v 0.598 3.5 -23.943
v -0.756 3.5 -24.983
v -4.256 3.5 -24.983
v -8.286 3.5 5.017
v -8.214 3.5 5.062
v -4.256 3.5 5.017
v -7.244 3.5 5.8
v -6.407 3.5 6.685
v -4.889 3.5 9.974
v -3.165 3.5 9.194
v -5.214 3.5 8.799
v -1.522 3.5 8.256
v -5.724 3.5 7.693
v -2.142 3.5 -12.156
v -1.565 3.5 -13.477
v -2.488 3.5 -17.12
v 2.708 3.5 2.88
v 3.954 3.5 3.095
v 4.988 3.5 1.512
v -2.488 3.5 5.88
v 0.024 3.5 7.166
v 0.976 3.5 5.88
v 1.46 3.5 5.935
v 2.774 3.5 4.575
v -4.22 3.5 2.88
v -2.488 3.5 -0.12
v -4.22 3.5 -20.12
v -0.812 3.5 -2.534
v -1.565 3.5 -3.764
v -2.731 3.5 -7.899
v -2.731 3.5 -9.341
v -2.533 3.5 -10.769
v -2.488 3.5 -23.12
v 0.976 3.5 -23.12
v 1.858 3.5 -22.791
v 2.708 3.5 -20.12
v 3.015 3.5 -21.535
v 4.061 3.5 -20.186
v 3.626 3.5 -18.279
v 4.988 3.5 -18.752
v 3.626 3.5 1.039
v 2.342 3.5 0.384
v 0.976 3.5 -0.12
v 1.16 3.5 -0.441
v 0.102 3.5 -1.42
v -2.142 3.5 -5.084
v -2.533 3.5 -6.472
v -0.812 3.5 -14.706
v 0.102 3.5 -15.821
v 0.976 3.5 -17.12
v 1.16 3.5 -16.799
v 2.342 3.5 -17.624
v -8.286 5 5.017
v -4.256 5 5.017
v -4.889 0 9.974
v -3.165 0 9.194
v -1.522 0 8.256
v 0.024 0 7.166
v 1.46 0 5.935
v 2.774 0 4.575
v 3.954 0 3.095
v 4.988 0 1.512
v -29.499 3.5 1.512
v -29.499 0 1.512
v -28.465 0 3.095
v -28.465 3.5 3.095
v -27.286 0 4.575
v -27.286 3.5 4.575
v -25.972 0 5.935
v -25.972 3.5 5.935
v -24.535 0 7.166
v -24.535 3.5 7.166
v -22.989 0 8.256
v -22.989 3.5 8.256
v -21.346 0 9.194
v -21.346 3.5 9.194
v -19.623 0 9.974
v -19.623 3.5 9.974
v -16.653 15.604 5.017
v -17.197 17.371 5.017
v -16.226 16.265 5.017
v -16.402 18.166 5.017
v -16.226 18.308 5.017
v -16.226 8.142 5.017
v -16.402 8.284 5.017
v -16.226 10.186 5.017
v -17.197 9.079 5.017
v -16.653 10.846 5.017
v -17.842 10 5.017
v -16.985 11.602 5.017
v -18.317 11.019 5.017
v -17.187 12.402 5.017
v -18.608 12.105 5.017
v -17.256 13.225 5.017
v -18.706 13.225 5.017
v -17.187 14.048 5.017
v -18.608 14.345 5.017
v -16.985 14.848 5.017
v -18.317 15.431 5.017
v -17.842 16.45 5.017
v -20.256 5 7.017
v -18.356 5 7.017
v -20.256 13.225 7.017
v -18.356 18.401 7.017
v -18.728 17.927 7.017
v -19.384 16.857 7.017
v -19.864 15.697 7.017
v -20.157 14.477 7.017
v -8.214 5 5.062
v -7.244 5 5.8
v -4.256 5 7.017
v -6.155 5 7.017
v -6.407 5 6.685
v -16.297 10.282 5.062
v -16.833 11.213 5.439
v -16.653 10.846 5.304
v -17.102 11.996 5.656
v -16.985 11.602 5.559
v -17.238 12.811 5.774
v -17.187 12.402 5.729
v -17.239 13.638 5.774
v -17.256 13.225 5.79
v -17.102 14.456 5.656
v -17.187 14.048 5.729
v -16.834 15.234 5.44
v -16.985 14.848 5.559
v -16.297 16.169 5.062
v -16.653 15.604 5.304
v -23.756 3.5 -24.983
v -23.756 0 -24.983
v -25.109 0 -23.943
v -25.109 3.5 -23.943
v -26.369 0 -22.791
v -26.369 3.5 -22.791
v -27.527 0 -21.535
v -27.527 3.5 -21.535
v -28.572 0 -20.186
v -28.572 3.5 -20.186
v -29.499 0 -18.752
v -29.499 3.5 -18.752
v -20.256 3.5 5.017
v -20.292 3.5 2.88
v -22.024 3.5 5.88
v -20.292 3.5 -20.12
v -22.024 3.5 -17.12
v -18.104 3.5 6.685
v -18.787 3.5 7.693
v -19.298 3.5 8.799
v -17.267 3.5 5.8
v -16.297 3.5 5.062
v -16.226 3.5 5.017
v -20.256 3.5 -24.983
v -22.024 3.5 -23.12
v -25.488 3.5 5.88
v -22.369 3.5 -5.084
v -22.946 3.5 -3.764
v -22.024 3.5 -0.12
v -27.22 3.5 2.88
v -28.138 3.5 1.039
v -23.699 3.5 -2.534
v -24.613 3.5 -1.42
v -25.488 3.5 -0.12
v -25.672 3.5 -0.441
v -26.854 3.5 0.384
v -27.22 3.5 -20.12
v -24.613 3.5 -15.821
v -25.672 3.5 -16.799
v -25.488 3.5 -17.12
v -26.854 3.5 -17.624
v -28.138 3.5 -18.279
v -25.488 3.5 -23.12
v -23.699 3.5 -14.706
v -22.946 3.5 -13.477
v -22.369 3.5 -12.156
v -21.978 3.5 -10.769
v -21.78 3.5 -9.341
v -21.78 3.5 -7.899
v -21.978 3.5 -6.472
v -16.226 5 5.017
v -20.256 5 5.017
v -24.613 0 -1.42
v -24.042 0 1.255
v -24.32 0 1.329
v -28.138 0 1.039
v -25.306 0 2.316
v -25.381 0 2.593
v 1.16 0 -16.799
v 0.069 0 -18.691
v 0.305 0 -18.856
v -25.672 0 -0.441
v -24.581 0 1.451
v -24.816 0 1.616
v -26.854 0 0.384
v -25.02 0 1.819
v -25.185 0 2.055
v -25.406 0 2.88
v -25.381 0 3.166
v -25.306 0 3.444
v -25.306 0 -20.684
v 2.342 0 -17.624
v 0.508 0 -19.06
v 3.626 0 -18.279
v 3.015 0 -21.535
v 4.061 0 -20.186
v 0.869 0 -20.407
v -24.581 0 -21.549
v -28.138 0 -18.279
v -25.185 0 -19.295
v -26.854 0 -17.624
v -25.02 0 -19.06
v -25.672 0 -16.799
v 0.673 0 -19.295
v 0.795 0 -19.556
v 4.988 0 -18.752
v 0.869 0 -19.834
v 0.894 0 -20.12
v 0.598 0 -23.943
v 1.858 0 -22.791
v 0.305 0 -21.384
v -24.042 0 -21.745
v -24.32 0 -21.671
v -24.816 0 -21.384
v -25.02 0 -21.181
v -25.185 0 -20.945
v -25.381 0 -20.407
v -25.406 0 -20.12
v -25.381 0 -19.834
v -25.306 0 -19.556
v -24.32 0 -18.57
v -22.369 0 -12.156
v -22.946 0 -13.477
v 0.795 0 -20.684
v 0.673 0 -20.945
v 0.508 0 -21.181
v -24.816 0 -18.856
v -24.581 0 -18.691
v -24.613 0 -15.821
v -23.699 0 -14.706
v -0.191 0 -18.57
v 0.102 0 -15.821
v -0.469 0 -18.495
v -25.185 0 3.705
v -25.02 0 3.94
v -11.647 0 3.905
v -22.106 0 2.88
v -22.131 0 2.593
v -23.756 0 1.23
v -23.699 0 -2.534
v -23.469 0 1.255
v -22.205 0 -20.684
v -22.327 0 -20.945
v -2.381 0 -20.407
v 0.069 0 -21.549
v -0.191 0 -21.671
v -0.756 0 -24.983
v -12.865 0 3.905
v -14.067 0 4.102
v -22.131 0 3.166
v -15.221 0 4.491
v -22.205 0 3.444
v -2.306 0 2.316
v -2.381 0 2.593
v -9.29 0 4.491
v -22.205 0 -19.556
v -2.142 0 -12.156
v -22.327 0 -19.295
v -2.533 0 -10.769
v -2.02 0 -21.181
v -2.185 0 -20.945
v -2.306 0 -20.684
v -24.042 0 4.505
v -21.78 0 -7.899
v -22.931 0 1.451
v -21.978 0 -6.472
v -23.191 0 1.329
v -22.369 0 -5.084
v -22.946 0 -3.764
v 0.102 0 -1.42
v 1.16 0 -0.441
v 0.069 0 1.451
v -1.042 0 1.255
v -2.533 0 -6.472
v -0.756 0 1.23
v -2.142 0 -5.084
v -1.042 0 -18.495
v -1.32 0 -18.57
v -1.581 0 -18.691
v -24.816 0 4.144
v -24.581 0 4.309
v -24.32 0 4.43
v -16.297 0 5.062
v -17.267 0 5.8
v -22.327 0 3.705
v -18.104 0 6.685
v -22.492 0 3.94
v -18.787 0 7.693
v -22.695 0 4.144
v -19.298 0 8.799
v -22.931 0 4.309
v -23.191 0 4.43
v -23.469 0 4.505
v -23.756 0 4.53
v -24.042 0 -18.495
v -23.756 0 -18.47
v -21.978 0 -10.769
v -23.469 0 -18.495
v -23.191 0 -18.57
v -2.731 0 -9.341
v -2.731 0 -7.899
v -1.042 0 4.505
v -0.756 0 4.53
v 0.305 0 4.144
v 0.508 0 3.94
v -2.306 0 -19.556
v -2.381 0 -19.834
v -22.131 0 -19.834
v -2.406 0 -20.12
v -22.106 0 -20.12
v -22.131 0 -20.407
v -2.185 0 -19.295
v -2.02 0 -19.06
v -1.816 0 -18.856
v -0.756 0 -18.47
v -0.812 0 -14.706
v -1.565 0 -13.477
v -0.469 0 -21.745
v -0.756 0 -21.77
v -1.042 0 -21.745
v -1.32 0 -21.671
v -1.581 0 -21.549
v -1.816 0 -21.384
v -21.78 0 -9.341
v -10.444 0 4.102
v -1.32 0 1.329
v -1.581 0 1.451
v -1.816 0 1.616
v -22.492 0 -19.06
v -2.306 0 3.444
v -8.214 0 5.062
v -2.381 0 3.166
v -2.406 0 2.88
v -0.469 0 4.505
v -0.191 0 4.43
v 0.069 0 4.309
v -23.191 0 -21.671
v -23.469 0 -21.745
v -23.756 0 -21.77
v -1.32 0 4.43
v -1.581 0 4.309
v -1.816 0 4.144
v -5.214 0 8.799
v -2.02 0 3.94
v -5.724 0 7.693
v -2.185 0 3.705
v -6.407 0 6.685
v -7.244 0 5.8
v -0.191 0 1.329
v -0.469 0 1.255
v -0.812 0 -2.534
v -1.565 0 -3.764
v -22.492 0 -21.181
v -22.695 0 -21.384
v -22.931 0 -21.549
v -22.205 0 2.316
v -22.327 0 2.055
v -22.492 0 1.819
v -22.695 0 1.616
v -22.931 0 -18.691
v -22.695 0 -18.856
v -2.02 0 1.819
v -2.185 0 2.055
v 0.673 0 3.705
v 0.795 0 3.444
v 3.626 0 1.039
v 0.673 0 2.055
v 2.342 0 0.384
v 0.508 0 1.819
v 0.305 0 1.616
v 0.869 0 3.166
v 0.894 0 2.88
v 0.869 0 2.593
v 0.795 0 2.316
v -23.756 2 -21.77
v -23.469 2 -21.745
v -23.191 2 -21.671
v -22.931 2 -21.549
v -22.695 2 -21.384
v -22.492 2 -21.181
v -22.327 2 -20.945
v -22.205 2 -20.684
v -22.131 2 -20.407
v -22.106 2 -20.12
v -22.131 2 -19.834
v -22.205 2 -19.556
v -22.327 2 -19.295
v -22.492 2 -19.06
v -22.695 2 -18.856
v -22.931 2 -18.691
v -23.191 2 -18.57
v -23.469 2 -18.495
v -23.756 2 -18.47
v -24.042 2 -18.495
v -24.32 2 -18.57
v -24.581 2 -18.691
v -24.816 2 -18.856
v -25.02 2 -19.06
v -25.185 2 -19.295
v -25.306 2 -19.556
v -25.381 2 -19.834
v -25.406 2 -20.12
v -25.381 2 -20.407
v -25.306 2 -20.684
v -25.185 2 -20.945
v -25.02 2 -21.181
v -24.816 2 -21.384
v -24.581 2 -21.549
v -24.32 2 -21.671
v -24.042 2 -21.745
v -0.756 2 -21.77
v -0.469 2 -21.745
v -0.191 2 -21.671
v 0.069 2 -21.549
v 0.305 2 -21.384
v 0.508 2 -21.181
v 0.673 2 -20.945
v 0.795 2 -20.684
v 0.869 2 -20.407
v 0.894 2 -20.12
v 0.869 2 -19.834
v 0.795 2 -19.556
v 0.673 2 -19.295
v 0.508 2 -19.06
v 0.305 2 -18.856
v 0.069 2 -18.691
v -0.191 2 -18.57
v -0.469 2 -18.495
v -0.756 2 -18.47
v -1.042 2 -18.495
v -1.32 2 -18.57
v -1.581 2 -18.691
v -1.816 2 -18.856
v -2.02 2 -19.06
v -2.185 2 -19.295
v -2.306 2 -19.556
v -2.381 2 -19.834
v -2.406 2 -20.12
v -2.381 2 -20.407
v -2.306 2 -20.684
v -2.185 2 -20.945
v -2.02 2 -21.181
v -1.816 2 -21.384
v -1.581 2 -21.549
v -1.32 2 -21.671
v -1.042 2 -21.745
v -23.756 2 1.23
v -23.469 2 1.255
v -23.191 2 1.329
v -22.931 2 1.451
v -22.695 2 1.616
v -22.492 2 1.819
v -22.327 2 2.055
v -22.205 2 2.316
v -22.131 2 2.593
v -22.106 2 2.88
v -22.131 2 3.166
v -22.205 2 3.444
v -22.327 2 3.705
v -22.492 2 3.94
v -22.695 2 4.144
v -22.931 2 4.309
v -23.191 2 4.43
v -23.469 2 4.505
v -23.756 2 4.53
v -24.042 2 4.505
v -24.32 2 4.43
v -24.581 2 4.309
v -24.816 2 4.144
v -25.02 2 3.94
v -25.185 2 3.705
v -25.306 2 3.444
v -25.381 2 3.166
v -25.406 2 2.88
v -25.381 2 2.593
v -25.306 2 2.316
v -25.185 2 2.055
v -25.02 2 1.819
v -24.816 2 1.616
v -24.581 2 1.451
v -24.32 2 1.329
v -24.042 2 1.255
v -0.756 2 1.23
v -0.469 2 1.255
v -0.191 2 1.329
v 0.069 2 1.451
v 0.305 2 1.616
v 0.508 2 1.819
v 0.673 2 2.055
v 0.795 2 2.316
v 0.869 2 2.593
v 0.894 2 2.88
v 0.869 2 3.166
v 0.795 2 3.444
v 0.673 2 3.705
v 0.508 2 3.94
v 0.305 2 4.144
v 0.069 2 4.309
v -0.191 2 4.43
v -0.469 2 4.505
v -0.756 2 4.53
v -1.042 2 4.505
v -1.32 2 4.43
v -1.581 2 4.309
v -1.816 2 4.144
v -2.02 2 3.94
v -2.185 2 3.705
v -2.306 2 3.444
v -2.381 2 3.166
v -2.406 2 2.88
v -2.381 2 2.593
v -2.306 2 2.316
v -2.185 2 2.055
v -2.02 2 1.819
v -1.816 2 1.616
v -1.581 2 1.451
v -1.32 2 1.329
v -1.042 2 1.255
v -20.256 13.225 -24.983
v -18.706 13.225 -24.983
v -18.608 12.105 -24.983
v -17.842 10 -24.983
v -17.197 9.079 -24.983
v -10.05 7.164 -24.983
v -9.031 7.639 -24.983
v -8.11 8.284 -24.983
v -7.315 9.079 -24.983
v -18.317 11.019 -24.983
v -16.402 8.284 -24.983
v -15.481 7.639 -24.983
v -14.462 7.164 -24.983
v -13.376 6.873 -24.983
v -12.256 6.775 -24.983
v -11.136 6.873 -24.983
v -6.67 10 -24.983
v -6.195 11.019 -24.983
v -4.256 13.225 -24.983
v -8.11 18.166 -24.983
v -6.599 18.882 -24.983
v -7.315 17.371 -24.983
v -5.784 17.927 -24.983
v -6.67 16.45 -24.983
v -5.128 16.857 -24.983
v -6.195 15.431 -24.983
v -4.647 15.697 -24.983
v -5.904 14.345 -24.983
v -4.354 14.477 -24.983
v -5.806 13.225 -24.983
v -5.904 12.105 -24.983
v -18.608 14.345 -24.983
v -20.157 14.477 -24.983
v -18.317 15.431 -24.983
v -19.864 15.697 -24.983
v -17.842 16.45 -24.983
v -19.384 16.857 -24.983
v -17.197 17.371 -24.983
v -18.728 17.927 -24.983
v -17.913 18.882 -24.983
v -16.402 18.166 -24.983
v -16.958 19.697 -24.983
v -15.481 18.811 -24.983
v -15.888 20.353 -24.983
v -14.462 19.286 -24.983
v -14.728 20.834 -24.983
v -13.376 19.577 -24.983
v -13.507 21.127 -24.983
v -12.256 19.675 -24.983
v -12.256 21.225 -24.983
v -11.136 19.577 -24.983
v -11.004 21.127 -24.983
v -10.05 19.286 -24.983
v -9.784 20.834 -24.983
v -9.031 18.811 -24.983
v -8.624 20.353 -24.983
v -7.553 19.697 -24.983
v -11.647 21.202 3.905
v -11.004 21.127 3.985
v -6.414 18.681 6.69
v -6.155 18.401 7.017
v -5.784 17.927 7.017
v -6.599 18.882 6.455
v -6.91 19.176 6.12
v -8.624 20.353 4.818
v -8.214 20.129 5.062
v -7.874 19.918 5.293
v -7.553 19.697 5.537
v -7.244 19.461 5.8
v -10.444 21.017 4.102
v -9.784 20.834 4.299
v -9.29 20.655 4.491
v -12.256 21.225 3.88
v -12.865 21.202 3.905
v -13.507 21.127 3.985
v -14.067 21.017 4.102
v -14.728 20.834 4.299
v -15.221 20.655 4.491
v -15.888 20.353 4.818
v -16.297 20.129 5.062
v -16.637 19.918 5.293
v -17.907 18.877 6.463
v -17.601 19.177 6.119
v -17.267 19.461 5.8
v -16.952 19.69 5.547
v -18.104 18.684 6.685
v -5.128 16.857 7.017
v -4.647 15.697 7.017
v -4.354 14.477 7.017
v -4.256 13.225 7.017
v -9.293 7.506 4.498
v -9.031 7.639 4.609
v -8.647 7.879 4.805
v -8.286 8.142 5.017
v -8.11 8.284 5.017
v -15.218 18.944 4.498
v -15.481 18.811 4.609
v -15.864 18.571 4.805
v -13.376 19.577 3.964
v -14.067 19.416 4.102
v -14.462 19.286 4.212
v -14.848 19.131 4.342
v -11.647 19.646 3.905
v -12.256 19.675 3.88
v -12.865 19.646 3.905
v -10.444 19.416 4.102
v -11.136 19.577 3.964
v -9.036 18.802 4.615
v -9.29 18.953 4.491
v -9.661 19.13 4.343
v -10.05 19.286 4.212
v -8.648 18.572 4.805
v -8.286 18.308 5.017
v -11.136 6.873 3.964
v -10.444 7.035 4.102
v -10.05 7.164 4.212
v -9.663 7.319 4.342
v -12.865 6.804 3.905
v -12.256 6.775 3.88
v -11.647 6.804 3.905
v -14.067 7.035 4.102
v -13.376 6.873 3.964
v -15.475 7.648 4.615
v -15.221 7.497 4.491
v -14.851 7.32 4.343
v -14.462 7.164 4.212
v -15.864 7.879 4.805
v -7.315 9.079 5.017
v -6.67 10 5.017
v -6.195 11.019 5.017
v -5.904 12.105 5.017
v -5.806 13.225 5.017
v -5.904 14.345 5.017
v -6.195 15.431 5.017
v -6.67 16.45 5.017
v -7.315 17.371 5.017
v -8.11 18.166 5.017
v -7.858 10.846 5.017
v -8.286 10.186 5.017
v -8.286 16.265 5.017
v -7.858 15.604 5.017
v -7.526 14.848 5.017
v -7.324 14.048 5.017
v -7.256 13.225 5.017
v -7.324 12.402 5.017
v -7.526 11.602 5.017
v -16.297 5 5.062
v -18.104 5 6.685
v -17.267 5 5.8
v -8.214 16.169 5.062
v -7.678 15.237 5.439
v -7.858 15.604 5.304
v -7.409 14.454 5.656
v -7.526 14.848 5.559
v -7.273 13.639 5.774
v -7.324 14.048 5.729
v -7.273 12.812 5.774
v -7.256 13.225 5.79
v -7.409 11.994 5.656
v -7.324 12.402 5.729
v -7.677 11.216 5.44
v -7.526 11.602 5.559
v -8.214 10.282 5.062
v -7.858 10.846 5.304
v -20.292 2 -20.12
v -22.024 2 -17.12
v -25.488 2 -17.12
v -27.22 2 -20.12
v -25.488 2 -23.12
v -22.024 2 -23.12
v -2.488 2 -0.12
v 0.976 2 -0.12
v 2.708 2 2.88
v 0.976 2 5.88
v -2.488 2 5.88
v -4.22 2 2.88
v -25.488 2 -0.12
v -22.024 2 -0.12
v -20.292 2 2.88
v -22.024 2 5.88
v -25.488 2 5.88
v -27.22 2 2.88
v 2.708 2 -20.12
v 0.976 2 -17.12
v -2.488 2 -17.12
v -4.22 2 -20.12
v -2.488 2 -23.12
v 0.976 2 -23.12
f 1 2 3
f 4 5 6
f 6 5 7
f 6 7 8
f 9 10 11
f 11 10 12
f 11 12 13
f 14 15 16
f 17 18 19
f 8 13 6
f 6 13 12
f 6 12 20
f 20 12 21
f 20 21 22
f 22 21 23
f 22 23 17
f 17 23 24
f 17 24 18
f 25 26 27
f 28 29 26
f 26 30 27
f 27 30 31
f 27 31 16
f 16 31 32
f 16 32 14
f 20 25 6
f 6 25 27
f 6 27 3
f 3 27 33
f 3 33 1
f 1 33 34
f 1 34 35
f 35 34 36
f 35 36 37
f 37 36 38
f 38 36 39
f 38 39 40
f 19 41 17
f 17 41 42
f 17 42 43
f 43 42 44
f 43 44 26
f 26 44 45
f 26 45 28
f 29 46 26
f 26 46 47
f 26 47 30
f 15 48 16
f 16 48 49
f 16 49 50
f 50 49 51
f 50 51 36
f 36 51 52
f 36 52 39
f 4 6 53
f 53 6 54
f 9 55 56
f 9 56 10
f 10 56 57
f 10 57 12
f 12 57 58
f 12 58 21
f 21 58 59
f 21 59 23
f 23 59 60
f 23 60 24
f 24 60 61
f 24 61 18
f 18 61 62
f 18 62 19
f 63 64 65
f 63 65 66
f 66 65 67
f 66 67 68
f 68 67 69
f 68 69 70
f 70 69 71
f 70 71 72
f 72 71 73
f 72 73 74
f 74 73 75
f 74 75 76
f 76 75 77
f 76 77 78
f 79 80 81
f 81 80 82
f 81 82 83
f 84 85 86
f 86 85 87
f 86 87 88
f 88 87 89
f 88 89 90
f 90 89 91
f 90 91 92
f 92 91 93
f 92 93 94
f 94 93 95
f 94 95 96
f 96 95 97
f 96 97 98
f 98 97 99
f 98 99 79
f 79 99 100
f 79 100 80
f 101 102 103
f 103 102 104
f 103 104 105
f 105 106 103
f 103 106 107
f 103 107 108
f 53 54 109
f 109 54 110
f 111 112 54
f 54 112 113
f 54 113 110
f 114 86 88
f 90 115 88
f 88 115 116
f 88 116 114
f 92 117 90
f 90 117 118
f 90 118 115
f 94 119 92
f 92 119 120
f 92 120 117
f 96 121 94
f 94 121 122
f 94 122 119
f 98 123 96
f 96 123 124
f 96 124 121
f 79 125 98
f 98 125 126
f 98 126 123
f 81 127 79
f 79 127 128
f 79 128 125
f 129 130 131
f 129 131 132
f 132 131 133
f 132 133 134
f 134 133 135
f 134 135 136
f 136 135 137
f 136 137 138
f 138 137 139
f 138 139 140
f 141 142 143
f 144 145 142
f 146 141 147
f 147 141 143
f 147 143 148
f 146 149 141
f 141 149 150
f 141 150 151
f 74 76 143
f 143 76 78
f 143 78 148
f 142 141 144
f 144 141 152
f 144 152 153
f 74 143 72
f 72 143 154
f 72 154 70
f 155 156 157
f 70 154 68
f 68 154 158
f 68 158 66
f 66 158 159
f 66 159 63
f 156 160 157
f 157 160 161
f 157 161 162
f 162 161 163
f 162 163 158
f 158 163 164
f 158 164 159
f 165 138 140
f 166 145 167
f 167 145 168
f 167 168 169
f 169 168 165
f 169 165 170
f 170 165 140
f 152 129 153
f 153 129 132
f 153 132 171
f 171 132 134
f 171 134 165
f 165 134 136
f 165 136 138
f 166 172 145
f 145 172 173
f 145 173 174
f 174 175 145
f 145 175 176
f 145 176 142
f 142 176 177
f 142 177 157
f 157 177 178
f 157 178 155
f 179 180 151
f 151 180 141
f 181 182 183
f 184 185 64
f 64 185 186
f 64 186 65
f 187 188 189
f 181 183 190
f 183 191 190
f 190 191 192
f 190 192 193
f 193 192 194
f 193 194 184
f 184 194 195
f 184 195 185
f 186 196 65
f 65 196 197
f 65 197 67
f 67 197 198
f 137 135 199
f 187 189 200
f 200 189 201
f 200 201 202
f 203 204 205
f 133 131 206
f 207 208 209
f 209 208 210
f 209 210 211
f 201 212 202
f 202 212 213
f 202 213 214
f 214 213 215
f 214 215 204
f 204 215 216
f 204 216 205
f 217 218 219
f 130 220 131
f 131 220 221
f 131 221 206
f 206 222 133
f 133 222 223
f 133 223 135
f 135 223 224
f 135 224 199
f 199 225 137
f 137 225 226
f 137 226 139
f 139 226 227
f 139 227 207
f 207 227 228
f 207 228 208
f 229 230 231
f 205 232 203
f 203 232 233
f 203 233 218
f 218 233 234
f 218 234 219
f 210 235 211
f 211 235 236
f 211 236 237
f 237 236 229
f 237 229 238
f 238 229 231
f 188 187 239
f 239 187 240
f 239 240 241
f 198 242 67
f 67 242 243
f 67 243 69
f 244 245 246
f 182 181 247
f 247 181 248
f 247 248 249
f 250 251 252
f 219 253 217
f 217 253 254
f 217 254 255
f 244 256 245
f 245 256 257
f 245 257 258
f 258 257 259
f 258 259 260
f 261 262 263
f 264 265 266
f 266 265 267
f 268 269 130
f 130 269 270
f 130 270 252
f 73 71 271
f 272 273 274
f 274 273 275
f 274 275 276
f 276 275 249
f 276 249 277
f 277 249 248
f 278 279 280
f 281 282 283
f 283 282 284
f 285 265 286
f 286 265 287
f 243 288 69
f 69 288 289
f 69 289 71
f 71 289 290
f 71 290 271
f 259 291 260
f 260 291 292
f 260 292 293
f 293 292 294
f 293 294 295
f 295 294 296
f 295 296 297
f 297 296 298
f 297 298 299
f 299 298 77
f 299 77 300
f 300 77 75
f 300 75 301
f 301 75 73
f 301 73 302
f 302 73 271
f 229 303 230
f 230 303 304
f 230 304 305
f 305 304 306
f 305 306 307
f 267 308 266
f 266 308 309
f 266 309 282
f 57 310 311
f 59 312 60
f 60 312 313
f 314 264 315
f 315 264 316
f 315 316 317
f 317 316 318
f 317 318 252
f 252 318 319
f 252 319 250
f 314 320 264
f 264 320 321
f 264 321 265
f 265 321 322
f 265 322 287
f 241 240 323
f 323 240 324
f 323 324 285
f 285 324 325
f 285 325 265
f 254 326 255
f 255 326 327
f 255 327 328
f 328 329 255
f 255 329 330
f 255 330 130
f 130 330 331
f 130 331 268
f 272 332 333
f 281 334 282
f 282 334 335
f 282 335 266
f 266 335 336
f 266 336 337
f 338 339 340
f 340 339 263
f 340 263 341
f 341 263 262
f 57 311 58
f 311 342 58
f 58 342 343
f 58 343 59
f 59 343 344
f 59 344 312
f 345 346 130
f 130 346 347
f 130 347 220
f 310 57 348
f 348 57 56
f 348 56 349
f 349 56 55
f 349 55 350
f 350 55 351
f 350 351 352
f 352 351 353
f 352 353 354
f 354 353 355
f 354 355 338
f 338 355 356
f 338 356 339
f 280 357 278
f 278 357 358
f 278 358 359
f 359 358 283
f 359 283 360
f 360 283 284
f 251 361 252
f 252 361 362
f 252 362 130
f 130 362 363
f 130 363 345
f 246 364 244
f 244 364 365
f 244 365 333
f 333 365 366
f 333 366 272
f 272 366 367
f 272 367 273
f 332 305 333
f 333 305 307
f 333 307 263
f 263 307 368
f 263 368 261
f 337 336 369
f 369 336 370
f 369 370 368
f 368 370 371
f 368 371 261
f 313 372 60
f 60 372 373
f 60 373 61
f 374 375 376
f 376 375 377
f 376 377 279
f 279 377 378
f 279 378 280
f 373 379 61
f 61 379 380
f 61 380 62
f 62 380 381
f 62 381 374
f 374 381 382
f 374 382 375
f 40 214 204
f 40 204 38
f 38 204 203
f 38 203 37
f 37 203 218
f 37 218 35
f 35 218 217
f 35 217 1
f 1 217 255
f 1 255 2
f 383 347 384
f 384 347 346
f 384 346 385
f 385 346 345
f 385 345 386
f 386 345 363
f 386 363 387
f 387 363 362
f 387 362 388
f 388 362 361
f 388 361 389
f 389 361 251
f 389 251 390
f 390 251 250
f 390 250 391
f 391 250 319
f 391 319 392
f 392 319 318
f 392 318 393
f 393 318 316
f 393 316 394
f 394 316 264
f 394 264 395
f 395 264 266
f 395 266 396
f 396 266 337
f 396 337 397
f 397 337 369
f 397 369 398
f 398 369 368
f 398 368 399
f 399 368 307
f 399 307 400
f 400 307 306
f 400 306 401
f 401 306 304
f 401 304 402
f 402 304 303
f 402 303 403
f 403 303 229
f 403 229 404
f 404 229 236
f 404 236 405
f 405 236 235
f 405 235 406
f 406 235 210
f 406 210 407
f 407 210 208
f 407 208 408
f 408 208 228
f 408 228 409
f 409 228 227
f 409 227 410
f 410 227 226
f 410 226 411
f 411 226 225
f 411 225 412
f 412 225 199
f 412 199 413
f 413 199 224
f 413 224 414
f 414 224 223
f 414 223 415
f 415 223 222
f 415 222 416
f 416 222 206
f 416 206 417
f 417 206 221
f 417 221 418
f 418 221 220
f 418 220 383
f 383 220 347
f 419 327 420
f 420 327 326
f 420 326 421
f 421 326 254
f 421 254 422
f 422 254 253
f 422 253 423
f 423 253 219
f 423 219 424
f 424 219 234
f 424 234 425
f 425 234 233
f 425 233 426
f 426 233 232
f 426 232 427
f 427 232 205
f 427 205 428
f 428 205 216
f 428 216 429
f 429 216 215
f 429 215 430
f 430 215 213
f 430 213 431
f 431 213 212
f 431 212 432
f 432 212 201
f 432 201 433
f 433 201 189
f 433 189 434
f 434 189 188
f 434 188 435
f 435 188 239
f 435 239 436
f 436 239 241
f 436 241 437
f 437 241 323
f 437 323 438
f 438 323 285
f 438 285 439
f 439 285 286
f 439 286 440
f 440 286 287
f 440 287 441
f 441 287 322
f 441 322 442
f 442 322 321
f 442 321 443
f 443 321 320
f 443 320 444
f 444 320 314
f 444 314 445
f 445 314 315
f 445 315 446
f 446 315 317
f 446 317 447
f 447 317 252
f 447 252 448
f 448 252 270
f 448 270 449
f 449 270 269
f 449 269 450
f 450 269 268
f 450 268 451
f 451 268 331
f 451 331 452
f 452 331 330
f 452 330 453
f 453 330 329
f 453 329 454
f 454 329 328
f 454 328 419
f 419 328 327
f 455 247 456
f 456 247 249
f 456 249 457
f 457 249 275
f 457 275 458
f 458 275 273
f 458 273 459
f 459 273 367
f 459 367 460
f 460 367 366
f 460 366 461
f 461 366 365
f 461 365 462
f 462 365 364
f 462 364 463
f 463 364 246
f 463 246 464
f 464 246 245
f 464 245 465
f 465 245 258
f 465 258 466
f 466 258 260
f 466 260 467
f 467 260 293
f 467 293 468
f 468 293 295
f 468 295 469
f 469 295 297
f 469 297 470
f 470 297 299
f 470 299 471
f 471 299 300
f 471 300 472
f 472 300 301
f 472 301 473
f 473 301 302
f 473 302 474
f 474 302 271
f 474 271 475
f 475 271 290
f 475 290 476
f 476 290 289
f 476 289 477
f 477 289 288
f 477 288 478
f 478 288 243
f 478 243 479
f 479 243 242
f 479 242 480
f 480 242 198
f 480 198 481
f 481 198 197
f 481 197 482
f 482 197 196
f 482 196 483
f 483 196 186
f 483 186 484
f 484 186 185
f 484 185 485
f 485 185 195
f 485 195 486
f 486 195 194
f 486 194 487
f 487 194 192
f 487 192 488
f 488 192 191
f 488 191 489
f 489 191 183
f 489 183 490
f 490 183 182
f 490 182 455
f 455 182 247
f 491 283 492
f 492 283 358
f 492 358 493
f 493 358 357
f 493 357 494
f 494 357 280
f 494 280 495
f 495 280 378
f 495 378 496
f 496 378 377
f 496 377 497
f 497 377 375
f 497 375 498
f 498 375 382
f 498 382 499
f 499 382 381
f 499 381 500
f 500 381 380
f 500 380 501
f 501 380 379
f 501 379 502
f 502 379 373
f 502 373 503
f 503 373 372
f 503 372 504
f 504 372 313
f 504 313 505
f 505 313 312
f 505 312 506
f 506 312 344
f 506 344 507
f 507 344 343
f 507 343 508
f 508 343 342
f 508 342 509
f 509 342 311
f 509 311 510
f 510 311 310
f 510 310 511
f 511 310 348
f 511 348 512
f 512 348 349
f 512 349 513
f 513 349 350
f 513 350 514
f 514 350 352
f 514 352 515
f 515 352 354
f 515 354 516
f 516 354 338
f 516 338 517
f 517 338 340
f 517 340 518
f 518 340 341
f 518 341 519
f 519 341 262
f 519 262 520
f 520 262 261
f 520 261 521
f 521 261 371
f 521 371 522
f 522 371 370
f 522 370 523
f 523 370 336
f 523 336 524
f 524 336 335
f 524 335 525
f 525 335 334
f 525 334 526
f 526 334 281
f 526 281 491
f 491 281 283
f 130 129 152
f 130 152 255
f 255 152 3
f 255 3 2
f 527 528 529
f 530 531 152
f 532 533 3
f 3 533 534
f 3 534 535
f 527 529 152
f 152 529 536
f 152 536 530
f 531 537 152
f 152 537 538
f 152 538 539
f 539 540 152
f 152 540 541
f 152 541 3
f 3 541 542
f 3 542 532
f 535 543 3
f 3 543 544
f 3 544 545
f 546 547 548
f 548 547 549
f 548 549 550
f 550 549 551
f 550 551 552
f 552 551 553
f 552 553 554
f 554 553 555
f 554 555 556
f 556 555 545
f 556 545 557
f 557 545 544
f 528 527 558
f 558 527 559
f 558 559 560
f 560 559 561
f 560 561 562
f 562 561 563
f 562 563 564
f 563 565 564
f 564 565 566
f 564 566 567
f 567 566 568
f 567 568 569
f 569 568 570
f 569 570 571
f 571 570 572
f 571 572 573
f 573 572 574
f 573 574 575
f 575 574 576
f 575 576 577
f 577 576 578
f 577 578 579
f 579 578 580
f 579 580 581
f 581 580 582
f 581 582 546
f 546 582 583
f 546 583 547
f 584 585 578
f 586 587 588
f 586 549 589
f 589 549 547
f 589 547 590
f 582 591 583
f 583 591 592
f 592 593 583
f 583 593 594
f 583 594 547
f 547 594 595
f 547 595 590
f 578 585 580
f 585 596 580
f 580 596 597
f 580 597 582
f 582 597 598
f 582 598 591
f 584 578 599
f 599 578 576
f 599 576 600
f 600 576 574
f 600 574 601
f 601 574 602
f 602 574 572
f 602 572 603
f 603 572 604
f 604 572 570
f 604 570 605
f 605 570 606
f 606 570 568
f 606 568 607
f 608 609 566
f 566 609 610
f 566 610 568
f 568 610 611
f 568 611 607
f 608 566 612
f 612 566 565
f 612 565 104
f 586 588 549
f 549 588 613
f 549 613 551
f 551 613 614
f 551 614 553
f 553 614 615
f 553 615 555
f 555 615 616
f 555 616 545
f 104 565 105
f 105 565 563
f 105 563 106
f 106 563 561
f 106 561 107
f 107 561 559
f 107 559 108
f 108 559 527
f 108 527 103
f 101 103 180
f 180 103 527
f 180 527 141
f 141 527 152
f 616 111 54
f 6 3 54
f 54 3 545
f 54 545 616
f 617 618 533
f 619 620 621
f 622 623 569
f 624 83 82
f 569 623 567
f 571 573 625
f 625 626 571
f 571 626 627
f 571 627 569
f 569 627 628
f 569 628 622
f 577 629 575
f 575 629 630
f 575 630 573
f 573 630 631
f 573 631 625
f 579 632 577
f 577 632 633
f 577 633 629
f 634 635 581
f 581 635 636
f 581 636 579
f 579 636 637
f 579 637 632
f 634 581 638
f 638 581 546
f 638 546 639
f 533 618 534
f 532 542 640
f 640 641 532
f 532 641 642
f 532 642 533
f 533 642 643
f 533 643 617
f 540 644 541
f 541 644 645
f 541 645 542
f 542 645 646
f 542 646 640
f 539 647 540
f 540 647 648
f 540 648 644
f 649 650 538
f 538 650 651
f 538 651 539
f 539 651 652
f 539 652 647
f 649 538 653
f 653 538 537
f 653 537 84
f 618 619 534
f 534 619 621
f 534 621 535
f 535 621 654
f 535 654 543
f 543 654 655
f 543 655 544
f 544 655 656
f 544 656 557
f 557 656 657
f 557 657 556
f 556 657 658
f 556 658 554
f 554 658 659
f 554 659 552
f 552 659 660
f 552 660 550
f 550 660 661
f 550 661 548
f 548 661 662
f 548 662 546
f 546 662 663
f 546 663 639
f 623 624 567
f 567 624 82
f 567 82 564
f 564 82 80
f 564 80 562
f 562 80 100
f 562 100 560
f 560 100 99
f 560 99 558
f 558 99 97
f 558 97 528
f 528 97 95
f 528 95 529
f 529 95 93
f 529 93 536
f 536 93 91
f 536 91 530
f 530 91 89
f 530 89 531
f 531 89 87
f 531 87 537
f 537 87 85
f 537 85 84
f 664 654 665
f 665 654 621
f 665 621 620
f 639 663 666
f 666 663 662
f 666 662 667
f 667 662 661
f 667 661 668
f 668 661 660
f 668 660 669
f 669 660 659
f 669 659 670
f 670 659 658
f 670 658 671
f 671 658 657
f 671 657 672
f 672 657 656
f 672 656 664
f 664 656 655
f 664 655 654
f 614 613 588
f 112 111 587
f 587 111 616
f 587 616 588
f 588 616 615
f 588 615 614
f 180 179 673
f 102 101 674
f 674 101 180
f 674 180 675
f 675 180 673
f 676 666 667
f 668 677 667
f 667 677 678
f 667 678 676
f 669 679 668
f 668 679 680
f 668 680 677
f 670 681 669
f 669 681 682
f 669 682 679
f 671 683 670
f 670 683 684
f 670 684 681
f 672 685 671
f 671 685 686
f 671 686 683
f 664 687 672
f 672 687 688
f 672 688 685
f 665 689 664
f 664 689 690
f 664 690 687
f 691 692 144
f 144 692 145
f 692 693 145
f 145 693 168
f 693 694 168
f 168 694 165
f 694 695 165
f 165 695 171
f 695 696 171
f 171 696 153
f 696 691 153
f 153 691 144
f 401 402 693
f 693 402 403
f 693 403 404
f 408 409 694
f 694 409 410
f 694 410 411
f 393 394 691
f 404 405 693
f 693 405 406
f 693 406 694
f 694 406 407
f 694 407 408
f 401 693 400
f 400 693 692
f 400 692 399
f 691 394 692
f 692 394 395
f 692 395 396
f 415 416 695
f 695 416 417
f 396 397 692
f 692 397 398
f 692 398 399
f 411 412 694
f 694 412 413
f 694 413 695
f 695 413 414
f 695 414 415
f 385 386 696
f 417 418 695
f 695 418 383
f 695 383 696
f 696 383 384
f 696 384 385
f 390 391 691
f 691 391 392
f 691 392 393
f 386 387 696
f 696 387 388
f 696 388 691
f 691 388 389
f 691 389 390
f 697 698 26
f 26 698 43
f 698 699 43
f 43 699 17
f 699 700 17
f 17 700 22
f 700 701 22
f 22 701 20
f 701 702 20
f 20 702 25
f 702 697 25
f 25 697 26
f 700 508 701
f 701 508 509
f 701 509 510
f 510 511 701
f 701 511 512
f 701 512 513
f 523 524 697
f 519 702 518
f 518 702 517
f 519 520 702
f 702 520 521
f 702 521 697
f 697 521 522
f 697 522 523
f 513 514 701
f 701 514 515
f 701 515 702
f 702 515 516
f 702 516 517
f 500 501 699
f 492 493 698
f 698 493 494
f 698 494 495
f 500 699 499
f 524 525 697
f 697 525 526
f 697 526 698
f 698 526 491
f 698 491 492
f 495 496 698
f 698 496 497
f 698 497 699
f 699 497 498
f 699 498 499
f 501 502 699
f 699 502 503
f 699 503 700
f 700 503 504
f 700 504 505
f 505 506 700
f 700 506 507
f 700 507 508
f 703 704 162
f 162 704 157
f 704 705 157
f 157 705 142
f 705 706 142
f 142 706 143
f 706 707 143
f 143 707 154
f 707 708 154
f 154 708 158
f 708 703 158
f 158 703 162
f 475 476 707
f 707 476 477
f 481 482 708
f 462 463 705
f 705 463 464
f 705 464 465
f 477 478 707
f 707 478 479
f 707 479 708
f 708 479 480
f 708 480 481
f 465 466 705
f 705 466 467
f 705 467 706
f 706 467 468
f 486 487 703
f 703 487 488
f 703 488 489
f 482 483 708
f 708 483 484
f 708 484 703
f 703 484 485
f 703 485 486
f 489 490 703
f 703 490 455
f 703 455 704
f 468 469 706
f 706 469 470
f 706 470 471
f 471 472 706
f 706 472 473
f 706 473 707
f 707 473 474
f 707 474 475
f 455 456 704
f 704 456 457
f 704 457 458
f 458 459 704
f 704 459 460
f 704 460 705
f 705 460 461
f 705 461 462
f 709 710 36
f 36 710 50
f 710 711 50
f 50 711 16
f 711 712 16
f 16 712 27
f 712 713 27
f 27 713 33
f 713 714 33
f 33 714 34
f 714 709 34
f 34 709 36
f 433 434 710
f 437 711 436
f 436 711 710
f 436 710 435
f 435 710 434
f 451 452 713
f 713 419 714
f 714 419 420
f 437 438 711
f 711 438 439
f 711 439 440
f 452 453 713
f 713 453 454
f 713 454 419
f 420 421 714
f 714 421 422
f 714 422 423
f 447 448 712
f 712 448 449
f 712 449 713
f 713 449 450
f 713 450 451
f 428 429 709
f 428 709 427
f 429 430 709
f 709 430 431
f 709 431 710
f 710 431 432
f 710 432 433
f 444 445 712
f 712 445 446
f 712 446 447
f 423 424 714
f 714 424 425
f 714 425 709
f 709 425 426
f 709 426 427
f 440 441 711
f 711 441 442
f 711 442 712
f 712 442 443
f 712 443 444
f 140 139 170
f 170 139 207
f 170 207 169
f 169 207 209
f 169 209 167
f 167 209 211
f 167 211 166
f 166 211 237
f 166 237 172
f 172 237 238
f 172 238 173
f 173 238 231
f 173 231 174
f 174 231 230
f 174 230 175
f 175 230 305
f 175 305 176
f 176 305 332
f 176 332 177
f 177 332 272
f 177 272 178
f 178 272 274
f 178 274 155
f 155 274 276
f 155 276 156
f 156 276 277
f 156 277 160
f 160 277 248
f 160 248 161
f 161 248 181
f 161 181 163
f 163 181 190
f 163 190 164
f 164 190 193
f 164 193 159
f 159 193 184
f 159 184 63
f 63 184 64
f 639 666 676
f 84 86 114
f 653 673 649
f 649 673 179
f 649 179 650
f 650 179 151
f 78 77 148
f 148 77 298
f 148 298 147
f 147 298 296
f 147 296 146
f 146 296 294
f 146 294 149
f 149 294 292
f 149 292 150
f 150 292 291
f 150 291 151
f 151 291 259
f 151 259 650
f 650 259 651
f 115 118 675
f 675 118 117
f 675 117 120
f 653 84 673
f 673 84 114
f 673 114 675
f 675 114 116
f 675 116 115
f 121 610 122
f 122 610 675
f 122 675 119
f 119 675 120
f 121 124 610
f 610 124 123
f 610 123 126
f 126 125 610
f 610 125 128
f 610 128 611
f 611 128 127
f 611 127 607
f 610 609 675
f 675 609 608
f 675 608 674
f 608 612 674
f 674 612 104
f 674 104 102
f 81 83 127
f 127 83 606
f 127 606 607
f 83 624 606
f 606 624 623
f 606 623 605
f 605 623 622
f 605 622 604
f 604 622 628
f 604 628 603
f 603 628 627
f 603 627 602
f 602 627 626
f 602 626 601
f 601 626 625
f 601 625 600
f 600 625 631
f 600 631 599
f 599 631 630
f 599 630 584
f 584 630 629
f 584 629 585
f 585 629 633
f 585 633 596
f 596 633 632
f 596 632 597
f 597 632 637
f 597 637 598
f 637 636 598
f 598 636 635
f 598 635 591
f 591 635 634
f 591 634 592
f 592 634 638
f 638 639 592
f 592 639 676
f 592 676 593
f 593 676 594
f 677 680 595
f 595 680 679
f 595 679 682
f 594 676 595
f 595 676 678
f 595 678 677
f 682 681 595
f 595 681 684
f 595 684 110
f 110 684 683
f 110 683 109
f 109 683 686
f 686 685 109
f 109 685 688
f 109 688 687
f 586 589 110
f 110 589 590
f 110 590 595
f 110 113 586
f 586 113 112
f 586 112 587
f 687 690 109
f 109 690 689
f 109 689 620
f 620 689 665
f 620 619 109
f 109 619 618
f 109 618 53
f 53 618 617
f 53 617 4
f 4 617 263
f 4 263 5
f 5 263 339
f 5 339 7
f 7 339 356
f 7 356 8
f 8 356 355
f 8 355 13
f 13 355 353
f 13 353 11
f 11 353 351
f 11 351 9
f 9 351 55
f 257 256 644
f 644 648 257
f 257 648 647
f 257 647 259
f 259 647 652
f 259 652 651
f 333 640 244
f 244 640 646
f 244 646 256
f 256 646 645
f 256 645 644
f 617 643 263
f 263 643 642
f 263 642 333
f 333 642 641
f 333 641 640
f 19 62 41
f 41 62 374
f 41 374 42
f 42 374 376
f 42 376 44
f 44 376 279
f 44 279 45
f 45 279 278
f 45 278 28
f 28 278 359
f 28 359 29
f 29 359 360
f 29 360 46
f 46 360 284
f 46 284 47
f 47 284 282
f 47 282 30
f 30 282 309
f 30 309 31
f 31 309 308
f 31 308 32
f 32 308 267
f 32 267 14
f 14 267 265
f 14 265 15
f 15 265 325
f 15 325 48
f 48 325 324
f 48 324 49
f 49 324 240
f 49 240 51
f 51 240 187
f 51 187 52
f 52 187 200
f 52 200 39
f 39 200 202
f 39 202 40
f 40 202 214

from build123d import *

# Parameters (mm, degrees)
SKETCH1_R               = 20
SKETCH1_R_2             = 1.65
BOSS_EXTRUDE2_DEPTH     = 3.5
CUT_EXTRUDE1_DEPTH      = 1
CUT_EXTRUDE1_DEPTH_BACK = 4.5
SKETCH4_R               = 6.45
BOSS_EXTRUDE3_DEPTH     = 30
SKETCH5_R               = 5
BOSS_EXTRUDE4_DEPTH     = 2
CUT_EXTRUDE2_START      = -3.5
CUT_EXTRUDE2_DEPTH      = 1.5
SKETCH7_R               = 10.5
SKETCH7_R_2             = 7.5
CUT_EXTRUDE3_DEPTH      = 22.225065807


with BuildPart() as part:
    # Sketch1 → Boss-Extrude2 (new body)
    with BuildSketch(Plane(origin=(0, 0, 0), x_dir=(1, 0, 0), z_dir=(0, 1, 0))):
        with Locations((-12.255661444, 8.620165848)):
            Circle(SKETCH1_R)
        with Locations((-23.755661444, 20.120165848)):
            Circle(SKETCH1_R_2, mode=Mode.SUBTRACT)
        with Locations((-0.755661444, 20.120165848)):
            Circle(SKETCH1_R_2, mode=Mode.SUBTRACT)
        with Locations((-23.755661444, -2.879834152)):
            Circle(SKETCH1_R_2, mode=Mode.SUBTRACT)
        with Locations((-0.755661444, -2.879834152)):
            Circle(SKETCH1_R_2, mode=Mode.SUBTRACT)
    extrude(amount=BOSS_EXTRUDE2_DEPTH)

    # Sketch3 → Cut-Extrude1 (cut, two sides)
    with BuildSketch(Plane(origin=(0, 3.5, 0), x_dir=(1, 0, 0), z_dir=(0, 1, 0))) as cut_extrude1_sk:
        Polygon((-129.974635183, 24.98323402), (-23.755661444, 24.98323402), (-0.755661444, 24.98323402), (105.463312296, 24.98323402), (105.463312296, 237.421181499), (-129.974635183, 237.421181499), align=None)
    extrude(amount=CUT_EXTRUDE1_DEPTH, mode=Mode.SUBTRACT)
    extrude(cut_extrude1_sk.sketch, amount=-CUT_EXTRUDE1_DEPTH_BACK, mode=Mode.SUBTRACT)

    # Sketch4 → Boss-Extrude3 (add)
    with BuildSketch(Plane(origin=(0, 0, -24.98323402), x_dir=(-1, 0, 0), z_dir=(0, 0, -1))):
        with BuildLine():
            Line((4.255661444, 13.225065807), (4.255661444, 3.5))
            Line((4.255661444, 3.5), (20.255661444, 3.5))
            Line((20.255661444, 3.5), (20.255661444, 13.225065807))
            ThreePointArc((20.255661444, 13.225065807), (12.255661444, 21.225065807), (4.255661444, 13.225065807))
        make_face()
        with Locations((12.255661444, 13.225065807)):
            Circle(SKETCH4_R, mode=Mode.SUBTRACT)
    extrude(amount=-BOSS_EXTRUDE3_DEPTH)

    # Sketch5 → Boss-Extrude4 (add)
    with BuildSketch(Plane.XY.offset(5.01676598)):
        with BuildLine():
            Line((-20.255661444, 13.225065807), (-20.255661444, 5))
            Line((-20.255661444, 5), (-4.255661444, 5))
            Line((-4.255661444, 5), (-4.255661444, 13.225065807))
            ThreePointArc((-4.255661444, 13.225065807), (-12.255661444, 21.225065807), (-20.255661444, 13.225065807))
        make_face()
        with Locations((-12.255661444, 13.225065807)):
            Circle(SKETCH5_R, mode=Mode.SUBTRACT)
    extrude(amount=BOSS_EXTRUDE4_DEPTH)

    # Sketch6 → Cut-Extrude2 (cut)
    with BuildSketch(Plane.XZ.offset(CUT_EXTRUDE2_START)):
        Polygon((-22.023610636, -17.120165848), (-25.487712251, -17.120165848), (-27.219763059, -20.120165848), (-25.487712251, -23.120165848), (-22.023610636, -23.120165848), (-20.291559828, -20.120165848), align=None)
        Polygon((-22.023610636, -0.120165848), (-20.291559828, 2.879834152), (-22.023610636, 5.879834152), (-25.487712251, 5.879834152), (-27.219763059, 2.879834152), (-25.487712251, -0.120165848), align=None)
        Polygon((0.976389364, -0.120165848), (2.708440172, 2.879834152), (0.976389364, 5.879834152), (-2.487712251, 5.879834152), (-4.219763059, 2.879834152), (-2.487712251, -0.120165848), align=None)
        Polygon((0.976389364, -17.120165848), (-2.487712251, -17.120165848), (-4.219763059, -20.120165848), (-2.487712251, -23.120165848), (0.976389364, -23.120165848), (2.708440172, -20.120165848), align=None)
    extrude(amount=CUT_EXTRUDE2_DEPTH, mode=Mode.SUBTRACT)

    # Sketch7 → Cut-Extrude3 (cut, through all)
    with BuildSketch(Plane.XZ):
        with Locations((-32.255661444, -8.620165848)):
            Circle(SKETCH7_R)
        with Locations((7.744338556, -8.620165848)):
            Circle(SKETCH7_R)
        with Locations((-12.255661444, 11.379834152)):
            Circle(SKETCH7_R_2)
    extrude(amount=-CUT_EXTRUDE3_DEPTH, mode=Mode.SUBTRACT)


solid = part.part
